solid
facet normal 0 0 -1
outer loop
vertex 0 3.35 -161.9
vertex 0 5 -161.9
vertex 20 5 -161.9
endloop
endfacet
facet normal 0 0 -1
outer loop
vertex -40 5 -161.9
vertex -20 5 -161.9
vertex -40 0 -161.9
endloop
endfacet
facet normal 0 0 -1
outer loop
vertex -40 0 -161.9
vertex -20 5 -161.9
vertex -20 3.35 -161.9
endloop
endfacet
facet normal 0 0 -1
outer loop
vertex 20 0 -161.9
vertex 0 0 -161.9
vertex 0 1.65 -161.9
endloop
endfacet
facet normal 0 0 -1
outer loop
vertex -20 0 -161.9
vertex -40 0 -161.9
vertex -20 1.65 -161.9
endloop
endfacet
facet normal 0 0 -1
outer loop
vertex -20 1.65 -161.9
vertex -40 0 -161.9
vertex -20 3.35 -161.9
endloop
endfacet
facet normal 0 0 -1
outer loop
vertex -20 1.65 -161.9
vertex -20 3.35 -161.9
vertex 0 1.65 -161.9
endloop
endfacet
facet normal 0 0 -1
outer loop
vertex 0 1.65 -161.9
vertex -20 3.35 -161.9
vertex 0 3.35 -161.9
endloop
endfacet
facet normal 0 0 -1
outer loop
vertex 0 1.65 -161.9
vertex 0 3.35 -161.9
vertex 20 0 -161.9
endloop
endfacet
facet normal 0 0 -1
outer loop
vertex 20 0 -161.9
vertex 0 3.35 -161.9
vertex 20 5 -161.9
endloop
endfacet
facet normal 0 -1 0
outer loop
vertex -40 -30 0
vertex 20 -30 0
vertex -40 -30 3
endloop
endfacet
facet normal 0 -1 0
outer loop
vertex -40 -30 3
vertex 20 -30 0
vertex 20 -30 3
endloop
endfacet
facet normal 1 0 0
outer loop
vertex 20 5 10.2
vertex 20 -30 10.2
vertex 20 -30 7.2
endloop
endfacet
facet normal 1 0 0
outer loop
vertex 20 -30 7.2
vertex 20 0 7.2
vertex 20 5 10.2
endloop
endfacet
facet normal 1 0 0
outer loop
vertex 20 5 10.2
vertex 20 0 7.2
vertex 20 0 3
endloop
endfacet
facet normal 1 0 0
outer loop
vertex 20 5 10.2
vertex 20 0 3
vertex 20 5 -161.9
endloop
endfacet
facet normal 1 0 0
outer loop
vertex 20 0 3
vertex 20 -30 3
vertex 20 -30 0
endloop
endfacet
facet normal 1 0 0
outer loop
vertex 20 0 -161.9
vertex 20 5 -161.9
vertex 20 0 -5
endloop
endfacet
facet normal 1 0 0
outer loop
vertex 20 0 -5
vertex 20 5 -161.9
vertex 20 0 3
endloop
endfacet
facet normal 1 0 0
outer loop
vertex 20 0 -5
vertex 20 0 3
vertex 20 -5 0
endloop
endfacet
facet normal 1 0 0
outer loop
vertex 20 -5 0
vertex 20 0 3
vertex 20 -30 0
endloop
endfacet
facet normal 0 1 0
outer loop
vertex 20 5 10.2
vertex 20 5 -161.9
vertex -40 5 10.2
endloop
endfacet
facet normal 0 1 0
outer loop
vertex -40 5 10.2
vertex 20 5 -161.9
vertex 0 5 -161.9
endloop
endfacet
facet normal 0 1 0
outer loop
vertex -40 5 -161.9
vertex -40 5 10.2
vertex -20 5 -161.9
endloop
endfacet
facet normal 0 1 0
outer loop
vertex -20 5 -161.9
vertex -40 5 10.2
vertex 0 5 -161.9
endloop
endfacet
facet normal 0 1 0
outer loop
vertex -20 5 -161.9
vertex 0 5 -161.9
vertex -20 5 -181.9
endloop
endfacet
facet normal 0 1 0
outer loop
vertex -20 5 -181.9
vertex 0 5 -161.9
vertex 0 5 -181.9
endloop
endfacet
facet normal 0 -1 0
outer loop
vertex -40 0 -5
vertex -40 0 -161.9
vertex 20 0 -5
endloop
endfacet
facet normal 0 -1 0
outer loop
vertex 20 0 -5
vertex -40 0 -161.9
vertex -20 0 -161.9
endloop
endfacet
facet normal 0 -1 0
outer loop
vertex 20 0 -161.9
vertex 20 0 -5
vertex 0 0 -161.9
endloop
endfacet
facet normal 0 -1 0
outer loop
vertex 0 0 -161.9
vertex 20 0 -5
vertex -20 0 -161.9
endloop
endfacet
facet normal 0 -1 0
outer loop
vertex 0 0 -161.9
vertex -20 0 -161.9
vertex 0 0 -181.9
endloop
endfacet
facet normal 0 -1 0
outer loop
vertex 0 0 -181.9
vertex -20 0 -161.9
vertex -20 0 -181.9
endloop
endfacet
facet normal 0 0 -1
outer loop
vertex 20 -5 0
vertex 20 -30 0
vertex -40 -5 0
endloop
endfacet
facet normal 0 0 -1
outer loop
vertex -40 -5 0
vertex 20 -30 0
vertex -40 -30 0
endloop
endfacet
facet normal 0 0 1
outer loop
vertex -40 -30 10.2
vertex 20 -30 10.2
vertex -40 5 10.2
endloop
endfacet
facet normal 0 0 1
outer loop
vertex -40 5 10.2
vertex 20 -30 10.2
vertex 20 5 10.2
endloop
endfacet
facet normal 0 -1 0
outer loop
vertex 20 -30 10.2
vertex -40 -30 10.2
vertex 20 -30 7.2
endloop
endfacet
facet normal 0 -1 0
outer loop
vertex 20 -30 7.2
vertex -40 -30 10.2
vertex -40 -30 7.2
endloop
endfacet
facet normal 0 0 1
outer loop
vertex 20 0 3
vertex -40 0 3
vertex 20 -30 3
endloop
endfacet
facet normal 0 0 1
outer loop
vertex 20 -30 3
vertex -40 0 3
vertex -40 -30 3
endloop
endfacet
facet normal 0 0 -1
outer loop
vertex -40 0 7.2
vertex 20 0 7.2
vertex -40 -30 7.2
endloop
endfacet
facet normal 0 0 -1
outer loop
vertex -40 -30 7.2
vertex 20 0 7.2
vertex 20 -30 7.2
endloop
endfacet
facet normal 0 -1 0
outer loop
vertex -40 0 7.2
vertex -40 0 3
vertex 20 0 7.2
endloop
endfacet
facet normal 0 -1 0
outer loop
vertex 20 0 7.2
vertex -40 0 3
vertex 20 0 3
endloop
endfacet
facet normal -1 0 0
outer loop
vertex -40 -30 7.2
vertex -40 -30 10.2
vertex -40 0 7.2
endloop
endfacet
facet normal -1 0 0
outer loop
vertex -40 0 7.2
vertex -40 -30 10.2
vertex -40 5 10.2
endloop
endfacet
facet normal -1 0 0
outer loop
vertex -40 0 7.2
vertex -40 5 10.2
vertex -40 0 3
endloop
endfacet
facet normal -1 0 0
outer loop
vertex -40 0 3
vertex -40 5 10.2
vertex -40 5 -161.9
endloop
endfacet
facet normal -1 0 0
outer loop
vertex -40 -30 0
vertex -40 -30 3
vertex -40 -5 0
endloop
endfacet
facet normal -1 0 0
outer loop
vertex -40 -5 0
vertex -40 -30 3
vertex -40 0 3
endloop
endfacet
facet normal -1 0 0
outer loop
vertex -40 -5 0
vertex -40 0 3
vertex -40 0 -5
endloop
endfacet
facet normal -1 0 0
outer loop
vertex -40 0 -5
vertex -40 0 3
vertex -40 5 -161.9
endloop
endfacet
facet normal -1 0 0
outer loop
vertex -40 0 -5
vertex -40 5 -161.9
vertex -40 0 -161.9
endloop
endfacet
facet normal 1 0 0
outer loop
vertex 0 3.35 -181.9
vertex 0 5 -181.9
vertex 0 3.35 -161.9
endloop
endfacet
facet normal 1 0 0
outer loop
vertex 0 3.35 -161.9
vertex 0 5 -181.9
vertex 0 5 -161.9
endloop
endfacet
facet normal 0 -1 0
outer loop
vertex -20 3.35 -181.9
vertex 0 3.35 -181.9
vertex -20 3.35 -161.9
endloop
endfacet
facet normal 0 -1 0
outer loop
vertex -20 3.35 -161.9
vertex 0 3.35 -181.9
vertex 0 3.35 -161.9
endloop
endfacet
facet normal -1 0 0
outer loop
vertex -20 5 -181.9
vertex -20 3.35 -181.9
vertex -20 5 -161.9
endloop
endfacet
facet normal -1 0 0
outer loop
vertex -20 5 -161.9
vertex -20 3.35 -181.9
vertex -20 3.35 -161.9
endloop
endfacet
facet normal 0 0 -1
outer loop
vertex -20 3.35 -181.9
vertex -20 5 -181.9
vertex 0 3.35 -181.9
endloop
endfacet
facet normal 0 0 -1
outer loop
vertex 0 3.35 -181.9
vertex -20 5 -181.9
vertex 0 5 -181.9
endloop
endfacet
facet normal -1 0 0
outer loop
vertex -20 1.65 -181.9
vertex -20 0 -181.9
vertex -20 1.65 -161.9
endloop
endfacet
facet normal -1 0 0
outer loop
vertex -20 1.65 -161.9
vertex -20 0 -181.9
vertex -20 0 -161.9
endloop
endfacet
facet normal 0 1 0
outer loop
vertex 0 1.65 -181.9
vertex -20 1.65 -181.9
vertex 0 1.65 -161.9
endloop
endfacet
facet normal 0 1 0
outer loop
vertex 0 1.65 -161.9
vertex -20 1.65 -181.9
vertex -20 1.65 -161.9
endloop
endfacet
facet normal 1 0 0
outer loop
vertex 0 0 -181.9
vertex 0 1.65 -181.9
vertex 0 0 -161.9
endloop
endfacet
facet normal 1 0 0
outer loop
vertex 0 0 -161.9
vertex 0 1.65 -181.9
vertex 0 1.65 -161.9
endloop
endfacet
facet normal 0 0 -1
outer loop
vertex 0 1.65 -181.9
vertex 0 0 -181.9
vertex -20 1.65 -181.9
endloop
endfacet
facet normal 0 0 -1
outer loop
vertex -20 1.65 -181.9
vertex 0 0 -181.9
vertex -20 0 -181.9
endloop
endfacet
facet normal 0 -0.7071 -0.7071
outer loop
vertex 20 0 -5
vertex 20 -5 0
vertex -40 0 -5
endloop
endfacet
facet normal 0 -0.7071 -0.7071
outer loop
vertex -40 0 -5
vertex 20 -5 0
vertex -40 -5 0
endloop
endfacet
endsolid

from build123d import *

# Parameters (mm, degrees)
SKETCH1_W                = 20
SKETCH1_H                = 80
BOSS_EXTRUDE1_DEPTH      = 5
BOSS_EXTRUDE2_DEPTH      = 30
BOSS_EXTRUDE2_DEPTH_BACK = 5
SKETCH2_W                = 20
SKETCH2_H                = 10.2
SKETCH3_W                = 20
SKETCH3_H                = 4.2
CUT_EXTRUDE1_DEPTH       = 30
BOSS_EXTRUDE3_DEPTH      = 40
SKETCH6_W                = 60
SKETCH6_H                = 5
BOSS_EXTRUDE4_DEPTH      = 81.9
SKETCH7_W                = 20
SKETCH7_H                = 1.65
BOSS_EXTRUDE5_DEPTH      = 20
CHAMFER1_SIZE            = 5


with BuildPart() as part:
    # Sketch1 → Boss-Extrude1 (new body)
    with BuildSketch(Plane(origin=(0, 0, 0), x_dir=(1, 0, 0), z_dir=(0, 1, 0))):
        with Locations((10, 40)):
            Rectangle(SKETCH1_W, SKETCH1_H)
    extrude(amount=BOSS_EXTRUDE1_DEPTH)

    # Sketch2 → Boss-Extrude2 (add, two sides: drawn at the far end of the back side and taken through both)
    with BuildSketch(Plane.XZ.offset(-BOSS_EXTRUDE2_DEPTH_BACK)):
        with Locations((10, 5.1)):
            Rectangle(SKETCH2_W, SKETCH2_H)
    extrude(amount=BOSS_EXTRUDE2_DEPTH + BOSS_EXTRUDE2_DEPTH_BACK)

    # Sketch3 → Cut-Extrude1 (cut)
    with BuildSketch(Plane.XZ.offset(30)):
        with Locations((10, 5.1)):
            Rectangle(SKETCH3_W, SKETCH3_H)
    extrude(amount=-CUT_EXTRUDE1_DEPTH, mode=Mode.SUBTRACT)

    # Sketch5 → Boss-Extrude3 (add)
    with BuildSketch(Plane.ZY):
        Polygon((3, 0), (7.2, 0), (7.2, 5), (-80, 5), (-80, 0), (0, 0), (0, -30), (3, -30), align=None)
        Polygon((7.2, -30), (10.2, -30), (10.2, 5), (7.2, 5), (7.2, 0), align=None)
    extrude(amount=BOSS_EXTRUDE3_DEPTH)

    # Sketch6 → Boss-Extrude4 (add)
    with BuildSketch(Plane(origin=(0, 0, -80), x_dir=(-1, 0, 0), z_dir=(0, 0, -1))):
        with Locations((10, 2.5)):
            Rectangle(SKETCH6_W, SKETCH6_H)
    extrude(amount=BOSS_EXTRUDE4_DEPTH)

    # Sketch7 → Boss-Extrude5 (add)
    with BuildSketch(Plane(origin=(0, 0, -161.9), x_dir=(-1, 0, 0), z_dir=(0, 0, -1))):
        with Locations((10, 4.175)):
            Rectangle(SKETCH7_W, SKETCH7_H)
        with Locations((10, 0.825)):
            Rectangle(SKETCH7_W, SKETCH7_H)
    extrude(amount=BOSS_EXTRUDE5_DEPTH)

    # Chamfer1
    chamfer1_edges = [part.edges().sort_by_distance(p)[0] for p in [
        (-10, 0, 0),
    ]]
    chamfer(chamfer1_edges, length=CHAMFER1_SIZE)


solid = part.part
